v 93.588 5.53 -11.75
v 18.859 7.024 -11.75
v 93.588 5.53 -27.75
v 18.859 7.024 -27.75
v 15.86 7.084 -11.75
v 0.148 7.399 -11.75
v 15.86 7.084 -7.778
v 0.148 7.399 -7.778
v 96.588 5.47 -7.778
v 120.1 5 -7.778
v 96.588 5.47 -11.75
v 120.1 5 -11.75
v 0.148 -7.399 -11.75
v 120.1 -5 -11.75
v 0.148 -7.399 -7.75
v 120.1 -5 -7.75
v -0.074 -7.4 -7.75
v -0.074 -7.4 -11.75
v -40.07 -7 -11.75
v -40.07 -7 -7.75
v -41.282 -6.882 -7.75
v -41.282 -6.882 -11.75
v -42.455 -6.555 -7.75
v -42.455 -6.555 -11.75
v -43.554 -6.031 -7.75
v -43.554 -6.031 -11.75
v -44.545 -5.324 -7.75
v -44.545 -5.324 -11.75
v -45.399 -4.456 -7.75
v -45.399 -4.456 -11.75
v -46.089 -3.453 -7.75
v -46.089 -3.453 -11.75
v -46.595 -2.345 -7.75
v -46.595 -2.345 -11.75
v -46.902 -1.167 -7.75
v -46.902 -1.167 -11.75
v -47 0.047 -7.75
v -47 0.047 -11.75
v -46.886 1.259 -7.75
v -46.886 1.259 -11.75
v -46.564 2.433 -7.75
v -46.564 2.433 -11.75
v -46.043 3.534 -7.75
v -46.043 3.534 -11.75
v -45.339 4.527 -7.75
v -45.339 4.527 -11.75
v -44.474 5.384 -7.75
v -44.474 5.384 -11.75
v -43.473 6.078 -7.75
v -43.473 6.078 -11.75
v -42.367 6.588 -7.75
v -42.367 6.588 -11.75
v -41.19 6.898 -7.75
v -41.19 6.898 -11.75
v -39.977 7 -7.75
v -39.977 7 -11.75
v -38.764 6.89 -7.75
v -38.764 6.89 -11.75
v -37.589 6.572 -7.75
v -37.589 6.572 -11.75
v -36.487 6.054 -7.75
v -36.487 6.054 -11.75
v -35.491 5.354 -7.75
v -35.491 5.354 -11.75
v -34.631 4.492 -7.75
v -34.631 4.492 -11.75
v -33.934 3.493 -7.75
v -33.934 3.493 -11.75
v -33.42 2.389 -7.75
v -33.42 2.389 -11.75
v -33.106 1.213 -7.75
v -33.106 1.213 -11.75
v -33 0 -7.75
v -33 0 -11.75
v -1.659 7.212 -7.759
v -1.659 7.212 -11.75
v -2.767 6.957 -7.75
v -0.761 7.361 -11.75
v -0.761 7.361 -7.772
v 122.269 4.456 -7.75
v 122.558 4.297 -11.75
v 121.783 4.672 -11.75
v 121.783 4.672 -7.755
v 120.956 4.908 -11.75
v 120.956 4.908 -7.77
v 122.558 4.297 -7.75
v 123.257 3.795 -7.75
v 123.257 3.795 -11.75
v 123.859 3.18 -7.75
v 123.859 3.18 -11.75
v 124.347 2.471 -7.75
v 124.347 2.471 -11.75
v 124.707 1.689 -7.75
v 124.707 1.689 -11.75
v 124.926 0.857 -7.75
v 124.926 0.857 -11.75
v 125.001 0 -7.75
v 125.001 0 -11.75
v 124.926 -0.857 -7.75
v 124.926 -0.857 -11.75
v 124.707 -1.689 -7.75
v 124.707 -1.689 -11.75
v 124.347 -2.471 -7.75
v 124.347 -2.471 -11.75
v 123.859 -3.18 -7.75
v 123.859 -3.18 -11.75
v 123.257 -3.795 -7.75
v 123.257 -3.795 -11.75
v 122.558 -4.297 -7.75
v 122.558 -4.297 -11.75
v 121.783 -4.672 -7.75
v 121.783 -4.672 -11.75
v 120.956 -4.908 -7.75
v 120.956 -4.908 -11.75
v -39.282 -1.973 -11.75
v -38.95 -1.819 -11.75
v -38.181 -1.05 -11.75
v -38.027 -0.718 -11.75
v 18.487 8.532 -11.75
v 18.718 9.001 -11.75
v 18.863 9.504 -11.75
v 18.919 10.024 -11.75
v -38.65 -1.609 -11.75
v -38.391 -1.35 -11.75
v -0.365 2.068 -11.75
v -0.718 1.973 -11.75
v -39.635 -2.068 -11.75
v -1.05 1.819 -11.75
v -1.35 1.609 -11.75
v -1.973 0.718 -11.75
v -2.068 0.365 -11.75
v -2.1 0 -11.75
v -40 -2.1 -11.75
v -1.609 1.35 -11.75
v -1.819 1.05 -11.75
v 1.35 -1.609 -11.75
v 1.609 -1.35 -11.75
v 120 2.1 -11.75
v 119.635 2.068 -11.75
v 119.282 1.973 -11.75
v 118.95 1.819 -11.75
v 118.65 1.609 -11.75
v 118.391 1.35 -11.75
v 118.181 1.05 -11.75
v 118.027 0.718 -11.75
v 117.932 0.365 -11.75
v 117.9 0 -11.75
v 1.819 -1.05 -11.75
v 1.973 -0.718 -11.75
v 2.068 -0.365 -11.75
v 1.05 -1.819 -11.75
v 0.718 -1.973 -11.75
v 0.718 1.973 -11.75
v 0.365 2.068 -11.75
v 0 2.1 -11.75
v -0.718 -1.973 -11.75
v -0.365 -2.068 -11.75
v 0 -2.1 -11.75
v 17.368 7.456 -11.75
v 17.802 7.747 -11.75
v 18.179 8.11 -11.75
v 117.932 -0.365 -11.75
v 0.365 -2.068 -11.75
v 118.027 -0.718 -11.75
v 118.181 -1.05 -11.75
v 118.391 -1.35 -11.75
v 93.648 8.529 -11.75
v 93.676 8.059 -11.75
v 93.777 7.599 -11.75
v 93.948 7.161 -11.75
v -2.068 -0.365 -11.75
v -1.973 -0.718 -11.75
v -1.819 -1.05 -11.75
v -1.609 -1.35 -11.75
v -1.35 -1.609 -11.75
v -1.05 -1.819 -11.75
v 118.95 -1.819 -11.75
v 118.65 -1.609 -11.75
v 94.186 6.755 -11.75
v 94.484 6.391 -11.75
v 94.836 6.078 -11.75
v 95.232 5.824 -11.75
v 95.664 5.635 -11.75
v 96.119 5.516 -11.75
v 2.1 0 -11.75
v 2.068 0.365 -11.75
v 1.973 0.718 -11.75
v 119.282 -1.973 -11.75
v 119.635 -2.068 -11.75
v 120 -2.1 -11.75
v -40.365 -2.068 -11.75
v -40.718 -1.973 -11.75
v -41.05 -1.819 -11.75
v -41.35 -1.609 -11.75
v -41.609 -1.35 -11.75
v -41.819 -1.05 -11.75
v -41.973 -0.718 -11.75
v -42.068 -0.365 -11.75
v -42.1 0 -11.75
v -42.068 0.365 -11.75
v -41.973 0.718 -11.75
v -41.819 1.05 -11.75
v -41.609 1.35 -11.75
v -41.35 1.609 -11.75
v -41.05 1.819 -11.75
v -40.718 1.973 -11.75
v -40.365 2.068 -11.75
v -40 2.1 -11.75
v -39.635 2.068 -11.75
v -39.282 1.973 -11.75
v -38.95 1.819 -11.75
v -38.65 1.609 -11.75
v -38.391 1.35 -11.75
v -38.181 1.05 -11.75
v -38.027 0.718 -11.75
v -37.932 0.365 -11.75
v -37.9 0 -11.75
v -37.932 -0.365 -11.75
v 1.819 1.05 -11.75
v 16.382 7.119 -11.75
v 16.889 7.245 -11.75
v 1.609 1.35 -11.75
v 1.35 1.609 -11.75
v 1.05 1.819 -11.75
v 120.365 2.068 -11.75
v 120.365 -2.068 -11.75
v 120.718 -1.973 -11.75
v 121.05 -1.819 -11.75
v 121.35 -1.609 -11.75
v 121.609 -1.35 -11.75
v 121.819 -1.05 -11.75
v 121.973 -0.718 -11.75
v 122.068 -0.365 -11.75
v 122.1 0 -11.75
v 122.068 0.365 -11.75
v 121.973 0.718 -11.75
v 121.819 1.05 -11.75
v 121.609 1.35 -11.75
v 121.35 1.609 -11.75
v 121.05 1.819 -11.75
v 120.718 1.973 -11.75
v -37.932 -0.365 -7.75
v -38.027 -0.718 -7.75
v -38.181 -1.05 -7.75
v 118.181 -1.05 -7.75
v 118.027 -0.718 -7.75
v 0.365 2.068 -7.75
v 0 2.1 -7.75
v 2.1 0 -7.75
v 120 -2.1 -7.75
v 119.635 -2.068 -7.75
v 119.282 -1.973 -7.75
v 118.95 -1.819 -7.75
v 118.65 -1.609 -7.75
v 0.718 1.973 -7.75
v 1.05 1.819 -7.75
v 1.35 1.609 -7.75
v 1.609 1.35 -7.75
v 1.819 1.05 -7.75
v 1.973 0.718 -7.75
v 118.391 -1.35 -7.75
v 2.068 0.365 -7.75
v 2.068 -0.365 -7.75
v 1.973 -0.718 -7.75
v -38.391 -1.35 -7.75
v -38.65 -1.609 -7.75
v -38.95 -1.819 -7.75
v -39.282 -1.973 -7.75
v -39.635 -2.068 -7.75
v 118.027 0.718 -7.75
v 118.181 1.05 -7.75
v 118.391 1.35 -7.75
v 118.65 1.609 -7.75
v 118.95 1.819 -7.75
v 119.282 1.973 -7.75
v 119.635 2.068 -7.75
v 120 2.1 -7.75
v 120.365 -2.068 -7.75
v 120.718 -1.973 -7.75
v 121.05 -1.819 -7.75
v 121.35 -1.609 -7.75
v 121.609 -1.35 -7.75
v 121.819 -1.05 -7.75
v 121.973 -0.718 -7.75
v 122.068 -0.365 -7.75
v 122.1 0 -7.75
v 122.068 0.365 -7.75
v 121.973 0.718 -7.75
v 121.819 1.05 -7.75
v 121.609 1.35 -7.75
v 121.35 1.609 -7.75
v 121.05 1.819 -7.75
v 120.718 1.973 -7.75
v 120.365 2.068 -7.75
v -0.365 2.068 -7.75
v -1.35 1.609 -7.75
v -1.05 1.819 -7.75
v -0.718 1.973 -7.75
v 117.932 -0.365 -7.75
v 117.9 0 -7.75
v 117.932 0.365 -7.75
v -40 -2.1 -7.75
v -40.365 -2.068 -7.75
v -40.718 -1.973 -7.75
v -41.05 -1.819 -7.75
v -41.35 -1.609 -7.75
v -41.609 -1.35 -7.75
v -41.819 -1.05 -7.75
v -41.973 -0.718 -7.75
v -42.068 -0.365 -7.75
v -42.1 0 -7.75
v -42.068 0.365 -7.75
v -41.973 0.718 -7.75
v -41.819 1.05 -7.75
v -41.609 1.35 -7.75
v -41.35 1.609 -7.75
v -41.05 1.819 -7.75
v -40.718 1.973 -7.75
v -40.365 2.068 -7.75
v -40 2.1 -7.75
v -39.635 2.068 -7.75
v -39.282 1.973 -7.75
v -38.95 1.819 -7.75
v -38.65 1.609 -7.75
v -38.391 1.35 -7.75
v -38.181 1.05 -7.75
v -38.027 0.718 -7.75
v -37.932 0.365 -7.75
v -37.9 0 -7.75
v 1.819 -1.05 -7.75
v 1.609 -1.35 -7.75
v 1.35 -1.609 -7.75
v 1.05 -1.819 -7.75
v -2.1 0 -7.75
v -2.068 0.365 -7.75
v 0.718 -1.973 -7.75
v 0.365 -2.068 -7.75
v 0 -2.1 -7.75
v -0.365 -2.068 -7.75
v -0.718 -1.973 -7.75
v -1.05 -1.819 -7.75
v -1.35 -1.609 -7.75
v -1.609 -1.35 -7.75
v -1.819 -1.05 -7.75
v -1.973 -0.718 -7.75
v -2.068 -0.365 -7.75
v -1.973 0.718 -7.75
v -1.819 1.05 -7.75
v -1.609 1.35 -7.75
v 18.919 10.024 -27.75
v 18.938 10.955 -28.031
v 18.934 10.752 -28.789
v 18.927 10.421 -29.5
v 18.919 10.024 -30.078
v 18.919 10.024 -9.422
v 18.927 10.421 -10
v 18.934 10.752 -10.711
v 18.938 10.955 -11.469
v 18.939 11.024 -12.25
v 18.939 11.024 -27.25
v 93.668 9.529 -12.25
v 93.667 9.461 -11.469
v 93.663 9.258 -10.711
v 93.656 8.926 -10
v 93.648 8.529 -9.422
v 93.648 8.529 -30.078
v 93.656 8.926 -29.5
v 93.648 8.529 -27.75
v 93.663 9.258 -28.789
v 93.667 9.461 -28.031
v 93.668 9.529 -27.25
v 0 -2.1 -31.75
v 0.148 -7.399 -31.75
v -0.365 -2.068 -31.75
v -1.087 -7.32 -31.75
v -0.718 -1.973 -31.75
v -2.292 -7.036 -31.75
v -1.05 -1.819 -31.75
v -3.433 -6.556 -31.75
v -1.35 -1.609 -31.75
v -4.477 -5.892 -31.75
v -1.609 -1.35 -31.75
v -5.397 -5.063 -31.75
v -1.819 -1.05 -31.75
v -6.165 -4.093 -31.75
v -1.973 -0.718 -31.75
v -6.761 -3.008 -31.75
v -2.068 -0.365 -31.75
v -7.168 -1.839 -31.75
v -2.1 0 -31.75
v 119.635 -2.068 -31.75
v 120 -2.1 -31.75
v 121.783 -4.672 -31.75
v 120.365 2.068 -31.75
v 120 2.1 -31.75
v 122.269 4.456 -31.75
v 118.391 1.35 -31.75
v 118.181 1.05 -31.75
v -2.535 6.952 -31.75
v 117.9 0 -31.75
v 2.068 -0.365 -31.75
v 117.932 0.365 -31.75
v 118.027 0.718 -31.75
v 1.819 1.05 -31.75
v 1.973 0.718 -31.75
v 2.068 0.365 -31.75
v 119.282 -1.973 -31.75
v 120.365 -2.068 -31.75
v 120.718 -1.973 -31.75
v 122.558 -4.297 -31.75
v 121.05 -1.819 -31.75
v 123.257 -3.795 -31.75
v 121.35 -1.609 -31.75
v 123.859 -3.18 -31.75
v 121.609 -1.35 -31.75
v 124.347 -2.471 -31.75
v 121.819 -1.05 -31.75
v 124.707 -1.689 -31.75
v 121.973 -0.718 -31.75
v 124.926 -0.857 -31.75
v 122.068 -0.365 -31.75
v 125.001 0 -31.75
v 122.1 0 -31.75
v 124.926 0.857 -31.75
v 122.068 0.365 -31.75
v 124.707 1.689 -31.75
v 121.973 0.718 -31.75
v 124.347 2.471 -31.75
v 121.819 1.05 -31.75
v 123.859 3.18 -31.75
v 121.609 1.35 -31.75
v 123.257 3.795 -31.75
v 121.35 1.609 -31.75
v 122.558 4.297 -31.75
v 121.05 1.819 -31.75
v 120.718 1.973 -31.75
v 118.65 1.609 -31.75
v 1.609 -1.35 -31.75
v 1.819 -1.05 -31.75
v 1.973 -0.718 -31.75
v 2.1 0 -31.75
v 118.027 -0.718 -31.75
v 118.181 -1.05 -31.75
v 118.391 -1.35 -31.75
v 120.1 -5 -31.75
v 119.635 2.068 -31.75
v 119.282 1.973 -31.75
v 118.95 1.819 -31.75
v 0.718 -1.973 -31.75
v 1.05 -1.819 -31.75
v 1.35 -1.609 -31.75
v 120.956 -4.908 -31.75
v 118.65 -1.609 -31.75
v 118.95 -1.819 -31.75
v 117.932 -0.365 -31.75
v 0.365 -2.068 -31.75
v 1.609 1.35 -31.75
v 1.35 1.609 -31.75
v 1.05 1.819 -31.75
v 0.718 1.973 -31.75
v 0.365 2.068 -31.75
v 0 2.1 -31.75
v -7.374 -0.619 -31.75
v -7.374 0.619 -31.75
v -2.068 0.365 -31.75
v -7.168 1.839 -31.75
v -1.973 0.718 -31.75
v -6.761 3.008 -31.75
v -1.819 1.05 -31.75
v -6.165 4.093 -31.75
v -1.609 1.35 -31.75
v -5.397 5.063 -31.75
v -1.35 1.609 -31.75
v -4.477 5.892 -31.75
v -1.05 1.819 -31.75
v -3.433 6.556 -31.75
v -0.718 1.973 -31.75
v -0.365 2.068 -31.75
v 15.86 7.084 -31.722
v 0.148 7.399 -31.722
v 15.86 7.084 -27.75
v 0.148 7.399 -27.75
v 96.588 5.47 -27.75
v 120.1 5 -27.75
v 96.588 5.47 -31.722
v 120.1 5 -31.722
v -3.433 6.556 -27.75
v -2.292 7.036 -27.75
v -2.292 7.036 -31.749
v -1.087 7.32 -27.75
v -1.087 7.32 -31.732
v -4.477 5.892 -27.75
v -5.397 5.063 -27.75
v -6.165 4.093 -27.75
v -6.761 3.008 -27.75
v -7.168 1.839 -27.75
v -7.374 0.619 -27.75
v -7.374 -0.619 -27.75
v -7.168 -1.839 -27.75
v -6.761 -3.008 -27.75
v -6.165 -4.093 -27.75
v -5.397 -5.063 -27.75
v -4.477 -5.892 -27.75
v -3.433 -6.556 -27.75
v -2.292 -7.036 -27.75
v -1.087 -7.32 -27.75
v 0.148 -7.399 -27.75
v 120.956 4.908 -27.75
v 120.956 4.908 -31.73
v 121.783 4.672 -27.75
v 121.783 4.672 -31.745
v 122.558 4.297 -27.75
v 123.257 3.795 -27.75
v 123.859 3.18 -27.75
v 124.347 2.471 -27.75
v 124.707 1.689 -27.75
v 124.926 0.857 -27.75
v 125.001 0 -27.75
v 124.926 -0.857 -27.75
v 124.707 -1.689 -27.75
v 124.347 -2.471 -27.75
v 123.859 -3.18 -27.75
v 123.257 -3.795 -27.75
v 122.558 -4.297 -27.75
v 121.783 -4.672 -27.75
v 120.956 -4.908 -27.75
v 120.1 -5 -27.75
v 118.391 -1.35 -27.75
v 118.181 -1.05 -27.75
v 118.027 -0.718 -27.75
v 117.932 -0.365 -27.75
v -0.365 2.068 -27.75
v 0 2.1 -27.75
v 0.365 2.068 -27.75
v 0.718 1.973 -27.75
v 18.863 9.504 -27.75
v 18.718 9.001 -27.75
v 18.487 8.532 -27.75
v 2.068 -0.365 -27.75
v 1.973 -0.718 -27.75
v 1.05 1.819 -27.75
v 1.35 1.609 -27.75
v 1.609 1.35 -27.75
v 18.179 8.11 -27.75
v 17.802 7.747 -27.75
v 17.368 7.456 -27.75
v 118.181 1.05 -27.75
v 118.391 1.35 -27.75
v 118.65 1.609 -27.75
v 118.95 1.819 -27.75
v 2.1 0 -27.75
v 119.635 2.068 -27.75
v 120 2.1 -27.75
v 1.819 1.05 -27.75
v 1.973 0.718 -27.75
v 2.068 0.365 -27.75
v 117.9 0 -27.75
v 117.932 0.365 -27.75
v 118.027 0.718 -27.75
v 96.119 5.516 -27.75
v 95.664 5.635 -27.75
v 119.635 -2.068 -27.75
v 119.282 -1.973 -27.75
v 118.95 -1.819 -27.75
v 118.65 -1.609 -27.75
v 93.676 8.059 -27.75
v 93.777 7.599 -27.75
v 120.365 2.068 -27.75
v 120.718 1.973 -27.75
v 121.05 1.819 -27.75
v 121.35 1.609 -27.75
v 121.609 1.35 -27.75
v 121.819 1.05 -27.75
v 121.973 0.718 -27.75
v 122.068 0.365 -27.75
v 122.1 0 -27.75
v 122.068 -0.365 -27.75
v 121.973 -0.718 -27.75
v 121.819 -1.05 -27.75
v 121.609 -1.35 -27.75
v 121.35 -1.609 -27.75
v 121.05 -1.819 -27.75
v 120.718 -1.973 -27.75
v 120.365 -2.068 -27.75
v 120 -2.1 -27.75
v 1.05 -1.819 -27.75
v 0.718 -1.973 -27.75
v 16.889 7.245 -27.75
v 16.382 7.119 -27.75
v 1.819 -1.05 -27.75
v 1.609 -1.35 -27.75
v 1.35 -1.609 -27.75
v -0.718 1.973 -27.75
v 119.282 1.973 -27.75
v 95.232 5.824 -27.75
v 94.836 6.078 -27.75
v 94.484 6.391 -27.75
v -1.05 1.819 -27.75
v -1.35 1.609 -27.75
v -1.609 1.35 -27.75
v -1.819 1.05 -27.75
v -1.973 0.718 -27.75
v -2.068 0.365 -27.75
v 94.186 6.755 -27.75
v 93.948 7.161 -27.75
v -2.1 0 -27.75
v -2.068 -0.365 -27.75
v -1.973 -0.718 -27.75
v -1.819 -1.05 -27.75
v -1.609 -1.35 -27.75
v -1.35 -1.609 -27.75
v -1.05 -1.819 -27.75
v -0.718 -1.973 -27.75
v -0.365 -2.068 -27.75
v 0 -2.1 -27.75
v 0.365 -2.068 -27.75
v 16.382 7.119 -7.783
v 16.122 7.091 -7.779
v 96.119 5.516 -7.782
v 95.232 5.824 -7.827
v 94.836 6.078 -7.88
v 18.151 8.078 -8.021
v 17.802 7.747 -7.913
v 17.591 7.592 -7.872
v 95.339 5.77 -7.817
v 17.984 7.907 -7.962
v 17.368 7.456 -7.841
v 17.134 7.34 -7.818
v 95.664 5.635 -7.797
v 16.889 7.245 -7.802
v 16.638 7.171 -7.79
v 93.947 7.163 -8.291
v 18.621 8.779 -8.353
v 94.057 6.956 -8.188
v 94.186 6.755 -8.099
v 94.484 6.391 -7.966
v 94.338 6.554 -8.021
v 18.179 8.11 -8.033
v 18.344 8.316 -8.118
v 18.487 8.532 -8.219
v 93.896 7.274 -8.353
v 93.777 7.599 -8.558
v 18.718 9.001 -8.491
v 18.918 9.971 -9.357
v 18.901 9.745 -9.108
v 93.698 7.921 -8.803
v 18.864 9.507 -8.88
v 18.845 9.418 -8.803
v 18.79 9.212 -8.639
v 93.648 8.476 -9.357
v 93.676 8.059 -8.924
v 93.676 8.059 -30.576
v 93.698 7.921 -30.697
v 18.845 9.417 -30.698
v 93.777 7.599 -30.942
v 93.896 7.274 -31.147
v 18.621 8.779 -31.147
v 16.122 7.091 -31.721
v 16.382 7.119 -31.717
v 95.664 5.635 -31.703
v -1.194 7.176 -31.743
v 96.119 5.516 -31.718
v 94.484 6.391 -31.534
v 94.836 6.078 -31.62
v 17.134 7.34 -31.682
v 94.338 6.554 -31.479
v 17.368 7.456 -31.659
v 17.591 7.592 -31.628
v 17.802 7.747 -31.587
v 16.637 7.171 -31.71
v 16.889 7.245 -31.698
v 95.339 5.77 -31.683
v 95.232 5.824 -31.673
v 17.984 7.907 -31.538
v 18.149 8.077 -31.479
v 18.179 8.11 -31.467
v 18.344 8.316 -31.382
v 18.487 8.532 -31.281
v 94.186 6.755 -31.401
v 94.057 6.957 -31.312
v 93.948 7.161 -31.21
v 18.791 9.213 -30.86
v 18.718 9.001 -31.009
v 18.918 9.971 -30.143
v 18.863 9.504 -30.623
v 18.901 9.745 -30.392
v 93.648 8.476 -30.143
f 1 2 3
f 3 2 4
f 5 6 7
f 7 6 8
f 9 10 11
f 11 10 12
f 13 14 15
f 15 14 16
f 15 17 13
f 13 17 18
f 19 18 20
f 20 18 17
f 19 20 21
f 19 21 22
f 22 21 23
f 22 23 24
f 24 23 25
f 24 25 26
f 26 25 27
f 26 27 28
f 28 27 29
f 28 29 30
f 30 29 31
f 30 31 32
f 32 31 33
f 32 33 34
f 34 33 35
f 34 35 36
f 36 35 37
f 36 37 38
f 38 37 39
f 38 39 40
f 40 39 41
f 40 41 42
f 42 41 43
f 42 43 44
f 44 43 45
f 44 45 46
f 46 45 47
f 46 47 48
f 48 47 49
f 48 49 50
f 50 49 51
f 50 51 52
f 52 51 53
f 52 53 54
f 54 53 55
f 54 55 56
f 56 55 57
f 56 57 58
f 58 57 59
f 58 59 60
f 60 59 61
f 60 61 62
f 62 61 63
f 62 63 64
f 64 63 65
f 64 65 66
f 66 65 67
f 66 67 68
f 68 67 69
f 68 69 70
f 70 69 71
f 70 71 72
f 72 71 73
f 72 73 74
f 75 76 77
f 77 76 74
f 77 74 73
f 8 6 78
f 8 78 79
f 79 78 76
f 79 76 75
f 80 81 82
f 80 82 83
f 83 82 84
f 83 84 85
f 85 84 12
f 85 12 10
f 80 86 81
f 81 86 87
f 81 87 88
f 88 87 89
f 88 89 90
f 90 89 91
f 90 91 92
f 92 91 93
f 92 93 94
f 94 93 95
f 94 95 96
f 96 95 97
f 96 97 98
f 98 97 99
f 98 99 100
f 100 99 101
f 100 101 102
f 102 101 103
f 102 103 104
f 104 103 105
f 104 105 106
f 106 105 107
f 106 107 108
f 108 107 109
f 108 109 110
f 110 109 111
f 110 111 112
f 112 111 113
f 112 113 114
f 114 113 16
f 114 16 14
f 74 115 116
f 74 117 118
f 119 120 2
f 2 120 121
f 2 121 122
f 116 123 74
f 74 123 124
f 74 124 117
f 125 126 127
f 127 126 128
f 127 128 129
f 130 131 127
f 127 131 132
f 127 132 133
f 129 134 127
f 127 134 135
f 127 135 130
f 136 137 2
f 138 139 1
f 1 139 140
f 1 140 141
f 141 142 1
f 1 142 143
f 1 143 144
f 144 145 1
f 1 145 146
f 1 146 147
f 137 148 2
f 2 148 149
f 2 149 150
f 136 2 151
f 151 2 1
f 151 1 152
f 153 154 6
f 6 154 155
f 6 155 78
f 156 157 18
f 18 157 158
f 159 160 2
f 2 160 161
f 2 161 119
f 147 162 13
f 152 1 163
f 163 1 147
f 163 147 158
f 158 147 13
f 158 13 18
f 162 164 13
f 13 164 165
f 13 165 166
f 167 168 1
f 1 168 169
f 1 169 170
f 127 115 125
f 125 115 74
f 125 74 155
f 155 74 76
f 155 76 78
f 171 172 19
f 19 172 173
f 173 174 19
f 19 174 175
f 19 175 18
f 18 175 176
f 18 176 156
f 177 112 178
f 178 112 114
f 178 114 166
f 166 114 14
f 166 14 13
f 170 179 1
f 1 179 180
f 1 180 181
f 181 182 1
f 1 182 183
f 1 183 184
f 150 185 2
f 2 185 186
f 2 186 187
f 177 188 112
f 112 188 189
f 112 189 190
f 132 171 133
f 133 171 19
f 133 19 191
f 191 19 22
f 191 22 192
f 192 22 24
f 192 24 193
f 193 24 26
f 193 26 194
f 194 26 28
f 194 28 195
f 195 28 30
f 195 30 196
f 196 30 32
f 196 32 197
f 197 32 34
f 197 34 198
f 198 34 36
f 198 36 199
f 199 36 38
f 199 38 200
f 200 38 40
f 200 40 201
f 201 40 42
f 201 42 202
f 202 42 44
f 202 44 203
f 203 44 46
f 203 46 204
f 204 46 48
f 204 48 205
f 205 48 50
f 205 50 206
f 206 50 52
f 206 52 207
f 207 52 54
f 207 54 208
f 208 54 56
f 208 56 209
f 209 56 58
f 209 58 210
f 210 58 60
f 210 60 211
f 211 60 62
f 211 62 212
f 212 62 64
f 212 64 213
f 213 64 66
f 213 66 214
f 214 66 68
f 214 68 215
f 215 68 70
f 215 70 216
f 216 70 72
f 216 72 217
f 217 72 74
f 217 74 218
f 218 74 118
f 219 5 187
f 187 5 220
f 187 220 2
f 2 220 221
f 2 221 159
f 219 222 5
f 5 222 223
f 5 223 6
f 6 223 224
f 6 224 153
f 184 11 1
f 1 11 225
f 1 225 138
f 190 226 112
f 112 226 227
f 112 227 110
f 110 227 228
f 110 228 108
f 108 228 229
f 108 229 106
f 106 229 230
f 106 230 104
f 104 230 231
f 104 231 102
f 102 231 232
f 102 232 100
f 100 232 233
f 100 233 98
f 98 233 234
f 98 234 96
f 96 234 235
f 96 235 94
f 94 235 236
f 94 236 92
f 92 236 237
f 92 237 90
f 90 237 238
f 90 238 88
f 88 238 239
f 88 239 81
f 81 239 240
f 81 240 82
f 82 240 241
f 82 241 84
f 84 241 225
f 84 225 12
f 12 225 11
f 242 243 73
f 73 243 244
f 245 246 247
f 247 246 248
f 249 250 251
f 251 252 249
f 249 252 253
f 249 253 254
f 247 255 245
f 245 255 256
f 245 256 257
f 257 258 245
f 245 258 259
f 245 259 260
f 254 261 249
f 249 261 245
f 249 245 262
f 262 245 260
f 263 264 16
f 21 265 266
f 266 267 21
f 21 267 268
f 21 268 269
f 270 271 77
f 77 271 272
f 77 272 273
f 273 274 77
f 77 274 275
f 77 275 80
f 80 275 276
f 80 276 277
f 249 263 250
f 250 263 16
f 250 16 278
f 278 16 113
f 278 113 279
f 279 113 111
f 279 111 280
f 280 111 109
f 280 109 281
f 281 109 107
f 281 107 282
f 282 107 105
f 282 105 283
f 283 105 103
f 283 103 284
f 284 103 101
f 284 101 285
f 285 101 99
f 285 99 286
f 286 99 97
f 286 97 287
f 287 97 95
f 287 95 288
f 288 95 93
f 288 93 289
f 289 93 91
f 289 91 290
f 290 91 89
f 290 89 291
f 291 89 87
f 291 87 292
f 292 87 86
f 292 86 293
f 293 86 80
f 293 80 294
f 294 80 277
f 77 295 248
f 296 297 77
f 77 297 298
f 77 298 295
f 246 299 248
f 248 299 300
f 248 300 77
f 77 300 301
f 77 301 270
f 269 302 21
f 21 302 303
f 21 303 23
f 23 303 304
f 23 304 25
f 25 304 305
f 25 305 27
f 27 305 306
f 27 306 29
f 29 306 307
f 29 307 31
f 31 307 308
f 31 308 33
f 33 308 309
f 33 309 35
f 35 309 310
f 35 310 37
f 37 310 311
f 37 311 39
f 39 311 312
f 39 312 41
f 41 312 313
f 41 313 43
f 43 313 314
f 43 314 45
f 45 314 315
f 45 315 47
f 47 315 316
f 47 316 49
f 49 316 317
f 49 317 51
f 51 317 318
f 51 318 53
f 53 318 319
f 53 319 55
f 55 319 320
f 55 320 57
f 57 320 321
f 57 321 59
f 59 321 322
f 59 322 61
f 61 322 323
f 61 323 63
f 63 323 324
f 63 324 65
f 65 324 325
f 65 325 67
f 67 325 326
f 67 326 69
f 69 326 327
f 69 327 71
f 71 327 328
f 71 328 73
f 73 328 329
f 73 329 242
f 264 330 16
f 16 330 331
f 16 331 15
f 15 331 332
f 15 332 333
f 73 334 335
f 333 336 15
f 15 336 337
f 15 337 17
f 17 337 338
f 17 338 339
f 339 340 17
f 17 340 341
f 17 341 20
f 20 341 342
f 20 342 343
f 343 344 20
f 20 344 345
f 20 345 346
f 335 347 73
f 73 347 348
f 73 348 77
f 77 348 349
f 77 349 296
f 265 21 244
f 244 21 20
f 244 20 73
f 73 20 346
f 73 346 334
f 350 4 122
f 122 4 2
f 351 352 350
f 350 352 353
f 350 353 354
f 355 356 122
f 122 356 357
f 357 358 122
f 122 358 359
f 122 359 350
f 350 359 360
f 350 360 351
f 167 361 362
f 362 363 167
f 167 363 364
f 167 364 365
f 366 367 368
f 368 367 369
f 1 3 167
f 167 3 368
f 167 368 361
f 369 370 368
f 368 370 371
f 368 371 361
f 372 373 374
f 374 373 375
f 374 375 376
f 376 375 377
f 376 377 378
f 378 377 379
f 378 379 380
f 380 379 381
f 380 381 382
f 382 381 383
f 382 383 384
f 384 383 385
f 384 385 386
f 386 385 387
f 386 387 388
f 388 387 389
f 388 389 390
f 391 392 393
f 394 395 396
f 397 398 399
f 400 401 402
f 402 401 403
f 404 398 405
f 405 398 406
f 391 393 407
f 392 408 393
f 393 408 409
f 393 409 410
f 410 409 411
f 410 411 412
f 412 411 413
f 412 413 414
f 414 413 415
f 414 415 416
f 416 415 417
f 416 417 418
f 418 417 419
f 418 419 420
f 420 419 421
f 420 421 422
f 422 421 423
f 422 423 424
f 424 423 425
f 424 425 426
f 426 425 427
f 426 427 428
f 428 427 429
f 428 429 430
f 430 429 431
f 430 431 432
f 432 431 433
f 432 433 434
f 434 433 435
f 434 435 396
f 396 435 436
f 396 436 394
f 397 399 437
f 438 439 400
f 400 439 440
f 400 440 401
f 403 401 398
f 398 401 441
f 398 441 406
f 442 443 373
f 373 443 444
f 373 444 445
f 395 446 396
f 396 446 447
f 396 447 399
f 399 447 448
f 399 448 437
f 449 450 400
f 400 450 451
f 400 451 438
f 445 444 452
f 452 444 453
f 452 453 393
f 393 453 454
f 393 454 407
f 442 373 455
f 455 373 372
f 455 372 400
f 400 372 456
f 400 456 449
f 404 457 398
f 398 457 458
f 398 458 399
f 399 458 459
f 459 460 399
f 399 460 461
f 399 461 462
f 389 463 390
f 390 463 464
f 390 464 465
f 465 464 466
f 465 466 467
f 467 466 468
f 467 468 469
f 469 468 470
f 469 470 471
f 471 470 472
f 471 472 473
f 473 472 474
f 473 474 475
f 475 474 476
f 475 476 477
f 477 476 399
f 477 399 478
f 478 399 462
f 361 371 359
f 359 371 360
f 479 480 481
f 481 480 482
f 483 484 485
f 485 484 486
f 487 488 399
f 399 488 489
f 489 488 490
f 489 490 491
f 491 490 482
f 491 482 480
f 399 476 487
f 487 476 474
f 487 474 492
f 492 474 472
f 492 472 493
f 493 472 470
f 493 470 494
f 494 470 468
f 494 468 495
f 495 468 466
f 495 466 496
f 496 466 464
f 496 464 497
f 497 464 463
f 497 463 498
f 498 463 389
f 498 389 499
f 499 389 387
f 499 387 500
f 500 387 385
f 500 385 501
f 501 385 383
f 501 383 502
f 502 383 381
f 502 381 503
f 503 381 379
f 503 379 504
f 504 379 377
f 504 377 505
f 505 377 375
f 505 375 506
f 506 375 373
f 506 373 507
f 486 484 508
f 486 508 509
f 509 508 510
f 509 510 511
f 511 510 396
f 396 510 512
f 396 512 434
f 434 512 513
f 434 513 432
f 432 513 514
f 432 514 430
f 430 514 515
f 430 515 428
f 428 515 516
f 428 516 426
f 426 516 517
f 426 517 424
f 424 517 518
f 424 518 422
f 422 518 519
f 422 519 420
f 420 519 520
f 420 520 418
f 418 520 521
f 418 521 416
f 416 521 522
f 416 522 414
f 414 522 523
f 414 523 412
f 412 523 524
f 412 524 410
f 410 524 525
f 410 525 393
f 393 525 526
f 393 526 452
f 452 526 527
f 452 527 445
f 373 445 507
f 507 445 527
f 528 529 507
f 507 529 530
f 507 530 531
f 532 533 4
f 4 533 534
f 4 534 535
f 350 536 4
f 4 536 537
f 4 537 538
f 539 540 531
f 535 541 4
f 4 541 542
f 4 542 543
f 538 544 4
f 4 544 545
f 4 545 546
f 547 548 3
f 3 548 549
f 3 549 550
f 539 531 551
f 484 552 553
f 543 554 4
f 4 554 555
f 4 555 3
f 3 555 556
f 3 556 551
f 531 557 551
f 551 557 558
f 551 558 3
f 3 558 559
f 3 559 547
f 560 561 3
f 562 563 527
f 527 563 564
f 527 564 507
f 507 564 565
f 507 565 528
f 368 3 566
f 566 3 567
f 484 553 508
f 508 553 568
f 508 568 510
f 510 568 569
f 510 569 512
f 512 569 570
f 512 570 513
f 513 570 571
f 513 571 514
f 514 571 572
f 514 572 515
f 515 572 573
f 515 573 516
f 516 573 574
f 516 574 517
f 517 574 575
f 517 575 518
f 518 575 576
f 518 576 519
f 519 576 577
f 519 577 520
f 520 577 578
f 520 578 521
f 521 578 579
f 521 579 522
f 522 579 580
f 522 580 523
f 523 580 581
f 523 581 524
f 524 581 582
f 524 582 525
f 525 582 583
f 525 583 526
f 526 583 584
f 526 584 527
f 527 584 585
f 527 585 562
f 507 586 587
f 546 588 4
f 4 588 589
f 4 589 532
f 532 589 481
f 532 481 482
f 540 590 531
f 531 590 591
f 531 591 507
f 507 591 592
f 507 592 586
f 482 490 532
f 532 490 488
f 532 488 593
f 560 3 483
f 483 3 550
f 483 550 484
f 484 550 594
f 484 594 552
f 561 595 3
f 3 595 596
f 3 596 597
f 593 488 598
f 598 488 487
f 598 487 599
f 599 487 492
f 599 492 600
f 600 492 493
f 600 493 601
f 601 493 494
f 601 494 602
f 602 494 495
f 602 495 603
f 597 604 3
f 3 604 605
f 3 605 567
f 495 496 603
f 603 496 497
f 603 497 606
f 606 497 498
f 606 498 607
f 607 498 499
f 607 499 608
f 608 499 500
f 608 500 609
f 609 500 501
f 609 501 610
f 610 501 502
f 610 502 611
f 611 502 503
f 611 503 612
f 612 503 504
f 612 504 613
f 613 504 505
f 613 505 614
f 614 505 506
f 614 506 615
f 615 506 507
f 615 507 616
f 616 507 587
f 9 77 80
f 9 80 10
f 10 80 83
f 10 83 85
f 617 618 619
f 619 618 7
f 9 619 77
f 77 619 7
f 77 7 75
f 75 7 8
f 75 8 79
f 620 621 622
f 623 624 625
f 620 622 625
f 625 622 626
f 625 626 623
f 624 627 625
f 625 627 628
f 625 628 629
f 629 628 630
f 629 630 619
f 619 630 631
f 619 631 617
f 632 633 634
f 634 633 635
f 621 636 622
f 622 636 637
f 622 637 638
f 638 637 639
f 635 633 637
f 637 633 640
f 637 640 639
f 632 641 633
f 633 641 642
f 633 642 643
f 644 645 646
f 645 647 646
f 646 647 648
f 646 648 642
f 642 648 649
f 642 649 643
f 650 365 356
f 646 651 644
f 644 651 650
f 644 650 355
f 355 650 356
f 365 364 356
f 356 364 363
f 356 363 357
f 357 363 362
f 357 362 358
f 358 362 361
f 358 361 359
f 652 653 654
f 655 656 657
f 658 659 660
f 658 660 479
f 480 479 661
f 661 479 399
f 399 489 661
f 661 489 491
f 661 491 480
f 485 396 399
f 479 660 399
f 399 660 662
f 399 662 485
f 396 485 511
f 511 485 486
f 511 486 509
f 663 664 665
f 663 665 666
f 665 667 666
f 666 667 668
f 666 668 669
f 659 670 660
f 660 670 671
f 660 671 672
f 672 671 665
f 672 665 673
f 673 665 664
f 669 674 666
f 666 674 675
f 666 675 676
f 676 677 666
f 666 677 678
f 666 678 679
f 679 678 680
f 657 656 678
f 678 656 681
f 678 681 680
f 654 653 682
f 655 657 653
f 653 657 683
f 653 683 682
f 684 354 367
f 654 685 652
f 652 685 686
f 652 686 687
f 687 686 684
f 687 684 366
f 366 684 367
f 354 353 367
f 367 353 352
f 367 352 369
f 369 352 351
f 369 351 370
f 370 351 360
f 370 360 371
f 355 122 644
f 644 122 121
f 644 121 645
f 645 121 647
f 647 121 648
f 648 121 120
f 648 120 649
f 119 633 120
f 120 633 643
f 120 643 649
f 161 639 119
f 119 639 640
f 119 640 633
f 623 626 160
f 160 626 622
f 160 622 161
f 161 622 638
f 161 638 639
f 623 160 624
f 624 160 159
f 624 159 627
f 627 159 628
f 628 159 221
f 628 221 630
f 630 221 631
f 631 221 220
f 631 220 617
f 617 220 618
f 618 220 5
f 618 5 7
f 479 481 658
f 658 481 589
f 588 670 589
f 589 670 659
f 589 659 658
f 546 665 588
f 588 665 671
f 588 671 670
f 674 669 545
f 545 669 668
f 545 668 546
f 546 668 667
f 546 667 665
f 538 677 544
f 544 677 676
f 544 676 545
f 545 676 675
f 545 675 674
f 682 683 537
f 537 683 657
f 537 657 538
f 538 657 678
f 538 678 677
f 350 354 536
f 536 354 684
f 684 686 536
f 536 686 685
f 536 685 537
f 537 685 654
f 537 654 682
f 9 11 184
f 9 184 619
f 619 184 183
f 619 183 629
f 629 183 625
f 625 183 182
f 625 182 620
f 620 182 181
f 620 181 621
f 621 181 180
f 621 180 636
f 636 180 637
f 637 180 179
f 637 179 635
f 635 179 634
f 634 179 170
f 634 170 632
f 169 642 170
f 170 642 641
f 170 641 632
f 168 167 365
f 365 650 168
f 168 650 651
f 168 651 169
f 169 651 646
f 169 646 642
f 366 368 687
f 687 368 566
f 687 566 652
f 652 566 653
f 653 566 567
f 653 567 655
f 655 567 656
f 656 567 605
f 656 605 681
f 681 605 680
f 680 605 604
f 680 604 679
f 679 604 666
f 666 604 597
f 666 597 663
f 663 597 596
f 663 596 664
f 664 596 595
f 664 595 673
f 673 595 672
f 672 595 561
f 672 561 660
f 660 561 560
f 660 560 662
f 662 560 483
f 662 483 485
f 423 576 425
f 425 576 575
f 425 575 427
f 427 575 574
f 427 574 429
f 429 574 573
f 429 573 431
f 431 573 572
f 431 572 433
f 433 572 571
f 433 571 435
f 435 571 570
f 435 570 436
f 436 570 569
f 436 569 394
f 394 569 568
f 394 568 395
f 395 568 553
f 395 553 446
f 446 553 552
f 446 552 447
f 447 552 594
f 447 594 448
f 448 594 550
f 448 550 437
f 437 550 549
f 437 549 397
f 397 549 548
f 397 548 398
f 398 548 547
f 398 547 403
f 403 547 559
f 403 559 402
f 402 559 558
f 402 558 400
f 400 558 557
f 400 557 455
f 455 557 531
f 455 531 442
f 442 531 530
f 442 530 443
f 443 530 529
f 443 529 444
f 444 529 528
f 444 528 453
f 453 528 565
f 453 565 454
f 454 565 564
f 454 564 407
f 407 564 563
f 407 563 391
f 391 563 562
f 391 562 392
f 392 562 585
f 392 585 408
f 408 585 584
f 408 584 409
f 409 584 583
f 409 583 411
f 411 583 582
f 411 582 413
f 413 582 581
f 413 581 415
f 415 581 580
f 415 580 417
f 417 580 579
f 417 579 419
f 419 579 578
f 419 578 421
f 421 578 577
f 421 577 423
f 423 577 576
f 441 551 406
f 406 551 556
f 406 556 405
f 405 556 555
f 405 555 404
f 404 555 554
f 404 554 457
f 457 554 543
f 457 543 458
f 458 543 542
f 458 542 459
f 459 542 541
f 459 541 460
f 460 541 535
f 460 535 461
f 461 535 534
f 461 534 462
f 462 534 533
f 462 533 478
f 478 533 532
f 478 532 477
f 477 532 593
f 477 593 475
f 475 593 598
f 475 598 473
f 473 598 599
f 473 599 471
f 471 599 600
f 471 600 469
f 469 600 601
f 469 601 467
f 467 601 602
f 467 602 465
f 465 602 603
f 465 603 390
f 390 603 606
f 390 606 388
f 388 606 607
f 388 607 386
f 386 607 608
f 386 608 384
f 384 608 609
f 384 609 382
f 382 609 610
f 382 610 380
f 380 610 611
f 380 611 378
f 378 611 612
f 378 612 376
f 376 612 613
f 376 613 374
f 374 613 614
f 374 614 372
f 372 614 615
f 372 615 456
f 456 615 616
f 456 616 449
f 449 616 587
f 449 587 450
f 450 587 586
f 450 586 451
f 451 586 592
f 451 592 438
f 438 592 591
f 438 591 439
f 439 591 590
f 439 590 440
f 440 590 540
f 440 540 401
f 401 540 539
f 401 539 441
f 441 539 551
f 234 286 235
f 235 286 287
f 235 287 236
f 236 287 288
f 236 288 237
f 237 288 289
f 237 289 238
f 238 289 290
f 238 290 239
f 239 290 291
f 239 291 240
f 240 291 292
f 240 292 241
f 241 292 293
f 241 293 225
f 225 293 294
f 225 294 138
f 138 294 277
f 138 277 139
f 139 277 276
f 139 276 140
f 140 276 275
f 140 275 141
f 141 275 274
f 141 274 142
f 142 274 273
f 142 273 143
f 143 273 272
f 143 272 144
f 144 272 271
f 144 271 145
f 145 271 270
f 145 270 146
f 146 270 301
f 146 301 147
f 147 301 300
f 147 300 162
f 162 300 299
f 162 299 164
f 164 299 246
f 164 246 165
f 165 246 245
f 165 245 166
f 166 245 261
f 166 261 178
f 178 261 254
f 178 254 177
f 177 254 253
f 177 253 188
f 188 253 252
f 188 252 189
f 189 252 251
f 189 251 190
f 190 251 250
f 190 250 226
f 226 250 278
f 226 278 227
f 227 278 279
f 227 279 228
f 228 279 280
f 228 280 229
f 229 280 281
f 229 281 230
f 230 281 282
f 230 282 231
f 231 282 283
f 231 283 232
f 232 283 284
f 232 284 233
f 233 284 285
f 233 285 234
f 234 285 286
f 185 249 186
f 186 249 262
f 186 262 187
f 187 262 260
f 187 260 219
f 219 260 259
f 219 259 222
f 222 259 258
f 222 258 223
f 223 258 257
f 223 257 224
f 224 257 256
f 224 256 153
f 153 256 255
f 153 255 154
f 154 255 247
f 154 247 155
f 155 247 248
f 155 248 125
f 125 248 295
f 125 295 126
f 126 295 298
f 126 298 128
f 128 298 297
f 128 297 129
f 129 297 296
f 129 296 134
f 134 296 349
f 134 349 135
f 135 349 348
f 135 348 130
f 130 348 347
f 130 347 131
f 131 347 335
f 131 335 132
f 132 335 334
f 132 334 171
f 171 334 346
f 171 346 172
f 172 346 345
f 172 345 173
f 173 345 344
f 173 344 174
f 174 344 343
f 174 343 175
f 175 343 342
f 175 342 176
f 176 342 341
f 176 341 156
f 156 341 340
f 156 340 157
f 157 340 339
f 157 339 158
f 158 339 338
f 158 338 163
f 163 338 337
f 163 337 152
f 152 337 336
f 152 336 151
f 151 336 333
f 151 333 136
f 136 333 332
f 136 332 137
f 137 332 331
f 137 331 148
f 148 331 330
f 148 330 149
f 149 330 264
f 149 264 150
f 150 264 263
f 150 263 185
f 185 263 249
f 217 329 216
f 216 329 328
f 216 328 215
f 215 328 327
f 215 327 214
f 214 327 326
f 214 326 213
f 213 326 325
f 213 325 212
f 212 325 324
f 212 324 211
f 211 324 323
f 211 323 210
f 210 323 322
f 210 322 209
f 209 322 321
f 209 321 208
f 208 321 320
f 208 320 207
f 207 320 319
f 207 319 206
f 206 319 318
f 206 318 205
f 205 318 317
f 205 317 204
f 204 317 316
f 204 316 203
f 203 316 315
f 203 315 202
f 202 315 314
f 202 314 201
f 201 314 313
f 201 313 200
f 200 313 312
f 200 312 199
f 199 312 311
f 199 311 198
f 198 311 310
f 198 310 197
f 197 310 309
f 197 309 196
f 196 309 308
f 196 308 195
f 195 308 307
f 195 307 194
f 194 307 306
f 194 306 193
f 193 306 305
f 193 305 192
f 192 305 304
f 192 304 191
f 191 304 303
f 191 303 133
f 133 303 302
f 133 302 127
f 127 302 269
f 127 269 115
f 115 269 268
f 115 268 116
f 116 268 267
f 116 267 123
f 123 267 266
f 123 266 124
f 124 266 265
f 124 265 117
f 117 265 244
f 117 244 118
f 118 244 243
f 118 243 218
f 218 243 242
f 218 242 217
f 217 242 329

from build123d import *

# Parameters (mm, degrees)
BOSS_EXTRUDE1_DEPTH = 4
BOSS_EXTRUDE2_DEPTH = 4
SKETCH9_W           = 74.744017839
SKETCH9_H           = 24
BOSS_EXTRUDE3_DEPTH = 4
FILLET1_R           = 4.5
FILLET2_R           = 3
SKETCH10_R          = 2.1
CUT_EXTRUDE1_DEPTH  = 128.760117479


with BuildPart() as part:
    # Sketch3 → Boss-Extrude1 (new body)
    with BuildSketch(Plane.XY.offset(-7.75)):
        with BuildLine():
            Line((-1.659393939, 7.211547112), (-33, 0))
            ThreePointArc((-33, 0), (-44.924936548, 4.974434641), (-40.07, -6.999649991))
            Line((-40.07, -6.999649991), (-0.074, -7.399629991))
            ThreePointArc((-0.074, -7.399629991), (0.036988131, -7.399907559), (0.147967941, -7.398520493))
            Line((0.147967941, -7.398520493), (120.099988734, -4.999520111))
            ThreePointArc((120.099988734, -4.999520111), (125.000519882, 0), (120.099988734, 4.999520111))
            Line((120.099988734, 4.999520111), (0.147967941, 7.398520493))
            ThreePointArc((0.147967941, 7.398520493), (-0.761473505, 7.360717227), (-1.659393939, 7.211547112))
        make_face()
    extrude(amount=-BOSS_EXTRUDE1_DEPTH)



with BuildPart() as body_2:
    # Sketch8 → Boss-Extrude2 (new body)
    with BuildSketch(Plane(origin=(0, 0, -27.75), x_dir=(-1, 0, 0), z_dir=(0, 0, -1))):
        with BuildLine():
            Line((-120.099988734, -4.999520111), (-0.147967941, -7.398520493))
            ThreePointArc((-0.147967941, -7.398520493), (7.4, 0), (-0.147967941, 7.398520493))
            Line((-0.147967941, 7.398520493), (-120.099988734, 4.999520111))
            ThreePointArc((-120.099988734, 4.999520111), (-125.000519882, 0), (-120.099988734, -4.999520111))
        make_face()
    extrude(amount=BOSS_EXTRUDE2_DEPTH)


with BuildPart() as part_1:
    add(part.part)

    add(body_2.part)  # Boss-Extrude3 merges body 2
    # Sketch9 → Boss-Extrude3 (add)
    with BuildSketch(Plane(origin=(0.147967941, 7.398520493, 0), x_dir=(0.999800066650892, -0.019995667652563644, 0), z_dir=(0.019995667652563644, 0.999800066650892, 0))):
        with Locations((56.086957222, 19.75)):
            Rectangle(SKETCH9_W, SKETCH9_H)
    extrude(amount=BOSS_EXTRUDE3_DEPTH)

    # Fillet1
    fillet1_edges = [part_1.edges().sort_by_distance(p)[0] for p in [
        (56.30369418, 10.276224604, -7.75),
        (56.30369418, 10.276224604, -31.75),
    ]]
    fillet(fillet1_edges, radius=FILLET1_R)

    # Fillet2
    fillet2_edges = [part_1.edges().sort_by_distance(p)[0] for p in [
        (18.8591745, 7.024302607, -9.763932023),
        (18.8591745, 7.024302607, -29.736067977),
        (93.588248518, 5.529746067, -9.763932023),
        (93.588248518, 5.529746067, -29.736067977),
    ]]
    fillet(fillet2_edges, radius=FILLET2_R)

    # Sketch10 → Cut-Extrude1 (cut, through all)
    with BuildSketch(Plane.XY.offset(-7.75)):
        with Locations((-40, 0)):
            Circle(SKETCH10_R)
        Circle(SKETCH10_R)
        with Locations((120, 0)):
            Circle(SKETCH10_R)
    extrude(amount=-CUT_EXTRUDE1_DEPTH, mode=Mode.SUBTRACT)


solid = part_1.part
